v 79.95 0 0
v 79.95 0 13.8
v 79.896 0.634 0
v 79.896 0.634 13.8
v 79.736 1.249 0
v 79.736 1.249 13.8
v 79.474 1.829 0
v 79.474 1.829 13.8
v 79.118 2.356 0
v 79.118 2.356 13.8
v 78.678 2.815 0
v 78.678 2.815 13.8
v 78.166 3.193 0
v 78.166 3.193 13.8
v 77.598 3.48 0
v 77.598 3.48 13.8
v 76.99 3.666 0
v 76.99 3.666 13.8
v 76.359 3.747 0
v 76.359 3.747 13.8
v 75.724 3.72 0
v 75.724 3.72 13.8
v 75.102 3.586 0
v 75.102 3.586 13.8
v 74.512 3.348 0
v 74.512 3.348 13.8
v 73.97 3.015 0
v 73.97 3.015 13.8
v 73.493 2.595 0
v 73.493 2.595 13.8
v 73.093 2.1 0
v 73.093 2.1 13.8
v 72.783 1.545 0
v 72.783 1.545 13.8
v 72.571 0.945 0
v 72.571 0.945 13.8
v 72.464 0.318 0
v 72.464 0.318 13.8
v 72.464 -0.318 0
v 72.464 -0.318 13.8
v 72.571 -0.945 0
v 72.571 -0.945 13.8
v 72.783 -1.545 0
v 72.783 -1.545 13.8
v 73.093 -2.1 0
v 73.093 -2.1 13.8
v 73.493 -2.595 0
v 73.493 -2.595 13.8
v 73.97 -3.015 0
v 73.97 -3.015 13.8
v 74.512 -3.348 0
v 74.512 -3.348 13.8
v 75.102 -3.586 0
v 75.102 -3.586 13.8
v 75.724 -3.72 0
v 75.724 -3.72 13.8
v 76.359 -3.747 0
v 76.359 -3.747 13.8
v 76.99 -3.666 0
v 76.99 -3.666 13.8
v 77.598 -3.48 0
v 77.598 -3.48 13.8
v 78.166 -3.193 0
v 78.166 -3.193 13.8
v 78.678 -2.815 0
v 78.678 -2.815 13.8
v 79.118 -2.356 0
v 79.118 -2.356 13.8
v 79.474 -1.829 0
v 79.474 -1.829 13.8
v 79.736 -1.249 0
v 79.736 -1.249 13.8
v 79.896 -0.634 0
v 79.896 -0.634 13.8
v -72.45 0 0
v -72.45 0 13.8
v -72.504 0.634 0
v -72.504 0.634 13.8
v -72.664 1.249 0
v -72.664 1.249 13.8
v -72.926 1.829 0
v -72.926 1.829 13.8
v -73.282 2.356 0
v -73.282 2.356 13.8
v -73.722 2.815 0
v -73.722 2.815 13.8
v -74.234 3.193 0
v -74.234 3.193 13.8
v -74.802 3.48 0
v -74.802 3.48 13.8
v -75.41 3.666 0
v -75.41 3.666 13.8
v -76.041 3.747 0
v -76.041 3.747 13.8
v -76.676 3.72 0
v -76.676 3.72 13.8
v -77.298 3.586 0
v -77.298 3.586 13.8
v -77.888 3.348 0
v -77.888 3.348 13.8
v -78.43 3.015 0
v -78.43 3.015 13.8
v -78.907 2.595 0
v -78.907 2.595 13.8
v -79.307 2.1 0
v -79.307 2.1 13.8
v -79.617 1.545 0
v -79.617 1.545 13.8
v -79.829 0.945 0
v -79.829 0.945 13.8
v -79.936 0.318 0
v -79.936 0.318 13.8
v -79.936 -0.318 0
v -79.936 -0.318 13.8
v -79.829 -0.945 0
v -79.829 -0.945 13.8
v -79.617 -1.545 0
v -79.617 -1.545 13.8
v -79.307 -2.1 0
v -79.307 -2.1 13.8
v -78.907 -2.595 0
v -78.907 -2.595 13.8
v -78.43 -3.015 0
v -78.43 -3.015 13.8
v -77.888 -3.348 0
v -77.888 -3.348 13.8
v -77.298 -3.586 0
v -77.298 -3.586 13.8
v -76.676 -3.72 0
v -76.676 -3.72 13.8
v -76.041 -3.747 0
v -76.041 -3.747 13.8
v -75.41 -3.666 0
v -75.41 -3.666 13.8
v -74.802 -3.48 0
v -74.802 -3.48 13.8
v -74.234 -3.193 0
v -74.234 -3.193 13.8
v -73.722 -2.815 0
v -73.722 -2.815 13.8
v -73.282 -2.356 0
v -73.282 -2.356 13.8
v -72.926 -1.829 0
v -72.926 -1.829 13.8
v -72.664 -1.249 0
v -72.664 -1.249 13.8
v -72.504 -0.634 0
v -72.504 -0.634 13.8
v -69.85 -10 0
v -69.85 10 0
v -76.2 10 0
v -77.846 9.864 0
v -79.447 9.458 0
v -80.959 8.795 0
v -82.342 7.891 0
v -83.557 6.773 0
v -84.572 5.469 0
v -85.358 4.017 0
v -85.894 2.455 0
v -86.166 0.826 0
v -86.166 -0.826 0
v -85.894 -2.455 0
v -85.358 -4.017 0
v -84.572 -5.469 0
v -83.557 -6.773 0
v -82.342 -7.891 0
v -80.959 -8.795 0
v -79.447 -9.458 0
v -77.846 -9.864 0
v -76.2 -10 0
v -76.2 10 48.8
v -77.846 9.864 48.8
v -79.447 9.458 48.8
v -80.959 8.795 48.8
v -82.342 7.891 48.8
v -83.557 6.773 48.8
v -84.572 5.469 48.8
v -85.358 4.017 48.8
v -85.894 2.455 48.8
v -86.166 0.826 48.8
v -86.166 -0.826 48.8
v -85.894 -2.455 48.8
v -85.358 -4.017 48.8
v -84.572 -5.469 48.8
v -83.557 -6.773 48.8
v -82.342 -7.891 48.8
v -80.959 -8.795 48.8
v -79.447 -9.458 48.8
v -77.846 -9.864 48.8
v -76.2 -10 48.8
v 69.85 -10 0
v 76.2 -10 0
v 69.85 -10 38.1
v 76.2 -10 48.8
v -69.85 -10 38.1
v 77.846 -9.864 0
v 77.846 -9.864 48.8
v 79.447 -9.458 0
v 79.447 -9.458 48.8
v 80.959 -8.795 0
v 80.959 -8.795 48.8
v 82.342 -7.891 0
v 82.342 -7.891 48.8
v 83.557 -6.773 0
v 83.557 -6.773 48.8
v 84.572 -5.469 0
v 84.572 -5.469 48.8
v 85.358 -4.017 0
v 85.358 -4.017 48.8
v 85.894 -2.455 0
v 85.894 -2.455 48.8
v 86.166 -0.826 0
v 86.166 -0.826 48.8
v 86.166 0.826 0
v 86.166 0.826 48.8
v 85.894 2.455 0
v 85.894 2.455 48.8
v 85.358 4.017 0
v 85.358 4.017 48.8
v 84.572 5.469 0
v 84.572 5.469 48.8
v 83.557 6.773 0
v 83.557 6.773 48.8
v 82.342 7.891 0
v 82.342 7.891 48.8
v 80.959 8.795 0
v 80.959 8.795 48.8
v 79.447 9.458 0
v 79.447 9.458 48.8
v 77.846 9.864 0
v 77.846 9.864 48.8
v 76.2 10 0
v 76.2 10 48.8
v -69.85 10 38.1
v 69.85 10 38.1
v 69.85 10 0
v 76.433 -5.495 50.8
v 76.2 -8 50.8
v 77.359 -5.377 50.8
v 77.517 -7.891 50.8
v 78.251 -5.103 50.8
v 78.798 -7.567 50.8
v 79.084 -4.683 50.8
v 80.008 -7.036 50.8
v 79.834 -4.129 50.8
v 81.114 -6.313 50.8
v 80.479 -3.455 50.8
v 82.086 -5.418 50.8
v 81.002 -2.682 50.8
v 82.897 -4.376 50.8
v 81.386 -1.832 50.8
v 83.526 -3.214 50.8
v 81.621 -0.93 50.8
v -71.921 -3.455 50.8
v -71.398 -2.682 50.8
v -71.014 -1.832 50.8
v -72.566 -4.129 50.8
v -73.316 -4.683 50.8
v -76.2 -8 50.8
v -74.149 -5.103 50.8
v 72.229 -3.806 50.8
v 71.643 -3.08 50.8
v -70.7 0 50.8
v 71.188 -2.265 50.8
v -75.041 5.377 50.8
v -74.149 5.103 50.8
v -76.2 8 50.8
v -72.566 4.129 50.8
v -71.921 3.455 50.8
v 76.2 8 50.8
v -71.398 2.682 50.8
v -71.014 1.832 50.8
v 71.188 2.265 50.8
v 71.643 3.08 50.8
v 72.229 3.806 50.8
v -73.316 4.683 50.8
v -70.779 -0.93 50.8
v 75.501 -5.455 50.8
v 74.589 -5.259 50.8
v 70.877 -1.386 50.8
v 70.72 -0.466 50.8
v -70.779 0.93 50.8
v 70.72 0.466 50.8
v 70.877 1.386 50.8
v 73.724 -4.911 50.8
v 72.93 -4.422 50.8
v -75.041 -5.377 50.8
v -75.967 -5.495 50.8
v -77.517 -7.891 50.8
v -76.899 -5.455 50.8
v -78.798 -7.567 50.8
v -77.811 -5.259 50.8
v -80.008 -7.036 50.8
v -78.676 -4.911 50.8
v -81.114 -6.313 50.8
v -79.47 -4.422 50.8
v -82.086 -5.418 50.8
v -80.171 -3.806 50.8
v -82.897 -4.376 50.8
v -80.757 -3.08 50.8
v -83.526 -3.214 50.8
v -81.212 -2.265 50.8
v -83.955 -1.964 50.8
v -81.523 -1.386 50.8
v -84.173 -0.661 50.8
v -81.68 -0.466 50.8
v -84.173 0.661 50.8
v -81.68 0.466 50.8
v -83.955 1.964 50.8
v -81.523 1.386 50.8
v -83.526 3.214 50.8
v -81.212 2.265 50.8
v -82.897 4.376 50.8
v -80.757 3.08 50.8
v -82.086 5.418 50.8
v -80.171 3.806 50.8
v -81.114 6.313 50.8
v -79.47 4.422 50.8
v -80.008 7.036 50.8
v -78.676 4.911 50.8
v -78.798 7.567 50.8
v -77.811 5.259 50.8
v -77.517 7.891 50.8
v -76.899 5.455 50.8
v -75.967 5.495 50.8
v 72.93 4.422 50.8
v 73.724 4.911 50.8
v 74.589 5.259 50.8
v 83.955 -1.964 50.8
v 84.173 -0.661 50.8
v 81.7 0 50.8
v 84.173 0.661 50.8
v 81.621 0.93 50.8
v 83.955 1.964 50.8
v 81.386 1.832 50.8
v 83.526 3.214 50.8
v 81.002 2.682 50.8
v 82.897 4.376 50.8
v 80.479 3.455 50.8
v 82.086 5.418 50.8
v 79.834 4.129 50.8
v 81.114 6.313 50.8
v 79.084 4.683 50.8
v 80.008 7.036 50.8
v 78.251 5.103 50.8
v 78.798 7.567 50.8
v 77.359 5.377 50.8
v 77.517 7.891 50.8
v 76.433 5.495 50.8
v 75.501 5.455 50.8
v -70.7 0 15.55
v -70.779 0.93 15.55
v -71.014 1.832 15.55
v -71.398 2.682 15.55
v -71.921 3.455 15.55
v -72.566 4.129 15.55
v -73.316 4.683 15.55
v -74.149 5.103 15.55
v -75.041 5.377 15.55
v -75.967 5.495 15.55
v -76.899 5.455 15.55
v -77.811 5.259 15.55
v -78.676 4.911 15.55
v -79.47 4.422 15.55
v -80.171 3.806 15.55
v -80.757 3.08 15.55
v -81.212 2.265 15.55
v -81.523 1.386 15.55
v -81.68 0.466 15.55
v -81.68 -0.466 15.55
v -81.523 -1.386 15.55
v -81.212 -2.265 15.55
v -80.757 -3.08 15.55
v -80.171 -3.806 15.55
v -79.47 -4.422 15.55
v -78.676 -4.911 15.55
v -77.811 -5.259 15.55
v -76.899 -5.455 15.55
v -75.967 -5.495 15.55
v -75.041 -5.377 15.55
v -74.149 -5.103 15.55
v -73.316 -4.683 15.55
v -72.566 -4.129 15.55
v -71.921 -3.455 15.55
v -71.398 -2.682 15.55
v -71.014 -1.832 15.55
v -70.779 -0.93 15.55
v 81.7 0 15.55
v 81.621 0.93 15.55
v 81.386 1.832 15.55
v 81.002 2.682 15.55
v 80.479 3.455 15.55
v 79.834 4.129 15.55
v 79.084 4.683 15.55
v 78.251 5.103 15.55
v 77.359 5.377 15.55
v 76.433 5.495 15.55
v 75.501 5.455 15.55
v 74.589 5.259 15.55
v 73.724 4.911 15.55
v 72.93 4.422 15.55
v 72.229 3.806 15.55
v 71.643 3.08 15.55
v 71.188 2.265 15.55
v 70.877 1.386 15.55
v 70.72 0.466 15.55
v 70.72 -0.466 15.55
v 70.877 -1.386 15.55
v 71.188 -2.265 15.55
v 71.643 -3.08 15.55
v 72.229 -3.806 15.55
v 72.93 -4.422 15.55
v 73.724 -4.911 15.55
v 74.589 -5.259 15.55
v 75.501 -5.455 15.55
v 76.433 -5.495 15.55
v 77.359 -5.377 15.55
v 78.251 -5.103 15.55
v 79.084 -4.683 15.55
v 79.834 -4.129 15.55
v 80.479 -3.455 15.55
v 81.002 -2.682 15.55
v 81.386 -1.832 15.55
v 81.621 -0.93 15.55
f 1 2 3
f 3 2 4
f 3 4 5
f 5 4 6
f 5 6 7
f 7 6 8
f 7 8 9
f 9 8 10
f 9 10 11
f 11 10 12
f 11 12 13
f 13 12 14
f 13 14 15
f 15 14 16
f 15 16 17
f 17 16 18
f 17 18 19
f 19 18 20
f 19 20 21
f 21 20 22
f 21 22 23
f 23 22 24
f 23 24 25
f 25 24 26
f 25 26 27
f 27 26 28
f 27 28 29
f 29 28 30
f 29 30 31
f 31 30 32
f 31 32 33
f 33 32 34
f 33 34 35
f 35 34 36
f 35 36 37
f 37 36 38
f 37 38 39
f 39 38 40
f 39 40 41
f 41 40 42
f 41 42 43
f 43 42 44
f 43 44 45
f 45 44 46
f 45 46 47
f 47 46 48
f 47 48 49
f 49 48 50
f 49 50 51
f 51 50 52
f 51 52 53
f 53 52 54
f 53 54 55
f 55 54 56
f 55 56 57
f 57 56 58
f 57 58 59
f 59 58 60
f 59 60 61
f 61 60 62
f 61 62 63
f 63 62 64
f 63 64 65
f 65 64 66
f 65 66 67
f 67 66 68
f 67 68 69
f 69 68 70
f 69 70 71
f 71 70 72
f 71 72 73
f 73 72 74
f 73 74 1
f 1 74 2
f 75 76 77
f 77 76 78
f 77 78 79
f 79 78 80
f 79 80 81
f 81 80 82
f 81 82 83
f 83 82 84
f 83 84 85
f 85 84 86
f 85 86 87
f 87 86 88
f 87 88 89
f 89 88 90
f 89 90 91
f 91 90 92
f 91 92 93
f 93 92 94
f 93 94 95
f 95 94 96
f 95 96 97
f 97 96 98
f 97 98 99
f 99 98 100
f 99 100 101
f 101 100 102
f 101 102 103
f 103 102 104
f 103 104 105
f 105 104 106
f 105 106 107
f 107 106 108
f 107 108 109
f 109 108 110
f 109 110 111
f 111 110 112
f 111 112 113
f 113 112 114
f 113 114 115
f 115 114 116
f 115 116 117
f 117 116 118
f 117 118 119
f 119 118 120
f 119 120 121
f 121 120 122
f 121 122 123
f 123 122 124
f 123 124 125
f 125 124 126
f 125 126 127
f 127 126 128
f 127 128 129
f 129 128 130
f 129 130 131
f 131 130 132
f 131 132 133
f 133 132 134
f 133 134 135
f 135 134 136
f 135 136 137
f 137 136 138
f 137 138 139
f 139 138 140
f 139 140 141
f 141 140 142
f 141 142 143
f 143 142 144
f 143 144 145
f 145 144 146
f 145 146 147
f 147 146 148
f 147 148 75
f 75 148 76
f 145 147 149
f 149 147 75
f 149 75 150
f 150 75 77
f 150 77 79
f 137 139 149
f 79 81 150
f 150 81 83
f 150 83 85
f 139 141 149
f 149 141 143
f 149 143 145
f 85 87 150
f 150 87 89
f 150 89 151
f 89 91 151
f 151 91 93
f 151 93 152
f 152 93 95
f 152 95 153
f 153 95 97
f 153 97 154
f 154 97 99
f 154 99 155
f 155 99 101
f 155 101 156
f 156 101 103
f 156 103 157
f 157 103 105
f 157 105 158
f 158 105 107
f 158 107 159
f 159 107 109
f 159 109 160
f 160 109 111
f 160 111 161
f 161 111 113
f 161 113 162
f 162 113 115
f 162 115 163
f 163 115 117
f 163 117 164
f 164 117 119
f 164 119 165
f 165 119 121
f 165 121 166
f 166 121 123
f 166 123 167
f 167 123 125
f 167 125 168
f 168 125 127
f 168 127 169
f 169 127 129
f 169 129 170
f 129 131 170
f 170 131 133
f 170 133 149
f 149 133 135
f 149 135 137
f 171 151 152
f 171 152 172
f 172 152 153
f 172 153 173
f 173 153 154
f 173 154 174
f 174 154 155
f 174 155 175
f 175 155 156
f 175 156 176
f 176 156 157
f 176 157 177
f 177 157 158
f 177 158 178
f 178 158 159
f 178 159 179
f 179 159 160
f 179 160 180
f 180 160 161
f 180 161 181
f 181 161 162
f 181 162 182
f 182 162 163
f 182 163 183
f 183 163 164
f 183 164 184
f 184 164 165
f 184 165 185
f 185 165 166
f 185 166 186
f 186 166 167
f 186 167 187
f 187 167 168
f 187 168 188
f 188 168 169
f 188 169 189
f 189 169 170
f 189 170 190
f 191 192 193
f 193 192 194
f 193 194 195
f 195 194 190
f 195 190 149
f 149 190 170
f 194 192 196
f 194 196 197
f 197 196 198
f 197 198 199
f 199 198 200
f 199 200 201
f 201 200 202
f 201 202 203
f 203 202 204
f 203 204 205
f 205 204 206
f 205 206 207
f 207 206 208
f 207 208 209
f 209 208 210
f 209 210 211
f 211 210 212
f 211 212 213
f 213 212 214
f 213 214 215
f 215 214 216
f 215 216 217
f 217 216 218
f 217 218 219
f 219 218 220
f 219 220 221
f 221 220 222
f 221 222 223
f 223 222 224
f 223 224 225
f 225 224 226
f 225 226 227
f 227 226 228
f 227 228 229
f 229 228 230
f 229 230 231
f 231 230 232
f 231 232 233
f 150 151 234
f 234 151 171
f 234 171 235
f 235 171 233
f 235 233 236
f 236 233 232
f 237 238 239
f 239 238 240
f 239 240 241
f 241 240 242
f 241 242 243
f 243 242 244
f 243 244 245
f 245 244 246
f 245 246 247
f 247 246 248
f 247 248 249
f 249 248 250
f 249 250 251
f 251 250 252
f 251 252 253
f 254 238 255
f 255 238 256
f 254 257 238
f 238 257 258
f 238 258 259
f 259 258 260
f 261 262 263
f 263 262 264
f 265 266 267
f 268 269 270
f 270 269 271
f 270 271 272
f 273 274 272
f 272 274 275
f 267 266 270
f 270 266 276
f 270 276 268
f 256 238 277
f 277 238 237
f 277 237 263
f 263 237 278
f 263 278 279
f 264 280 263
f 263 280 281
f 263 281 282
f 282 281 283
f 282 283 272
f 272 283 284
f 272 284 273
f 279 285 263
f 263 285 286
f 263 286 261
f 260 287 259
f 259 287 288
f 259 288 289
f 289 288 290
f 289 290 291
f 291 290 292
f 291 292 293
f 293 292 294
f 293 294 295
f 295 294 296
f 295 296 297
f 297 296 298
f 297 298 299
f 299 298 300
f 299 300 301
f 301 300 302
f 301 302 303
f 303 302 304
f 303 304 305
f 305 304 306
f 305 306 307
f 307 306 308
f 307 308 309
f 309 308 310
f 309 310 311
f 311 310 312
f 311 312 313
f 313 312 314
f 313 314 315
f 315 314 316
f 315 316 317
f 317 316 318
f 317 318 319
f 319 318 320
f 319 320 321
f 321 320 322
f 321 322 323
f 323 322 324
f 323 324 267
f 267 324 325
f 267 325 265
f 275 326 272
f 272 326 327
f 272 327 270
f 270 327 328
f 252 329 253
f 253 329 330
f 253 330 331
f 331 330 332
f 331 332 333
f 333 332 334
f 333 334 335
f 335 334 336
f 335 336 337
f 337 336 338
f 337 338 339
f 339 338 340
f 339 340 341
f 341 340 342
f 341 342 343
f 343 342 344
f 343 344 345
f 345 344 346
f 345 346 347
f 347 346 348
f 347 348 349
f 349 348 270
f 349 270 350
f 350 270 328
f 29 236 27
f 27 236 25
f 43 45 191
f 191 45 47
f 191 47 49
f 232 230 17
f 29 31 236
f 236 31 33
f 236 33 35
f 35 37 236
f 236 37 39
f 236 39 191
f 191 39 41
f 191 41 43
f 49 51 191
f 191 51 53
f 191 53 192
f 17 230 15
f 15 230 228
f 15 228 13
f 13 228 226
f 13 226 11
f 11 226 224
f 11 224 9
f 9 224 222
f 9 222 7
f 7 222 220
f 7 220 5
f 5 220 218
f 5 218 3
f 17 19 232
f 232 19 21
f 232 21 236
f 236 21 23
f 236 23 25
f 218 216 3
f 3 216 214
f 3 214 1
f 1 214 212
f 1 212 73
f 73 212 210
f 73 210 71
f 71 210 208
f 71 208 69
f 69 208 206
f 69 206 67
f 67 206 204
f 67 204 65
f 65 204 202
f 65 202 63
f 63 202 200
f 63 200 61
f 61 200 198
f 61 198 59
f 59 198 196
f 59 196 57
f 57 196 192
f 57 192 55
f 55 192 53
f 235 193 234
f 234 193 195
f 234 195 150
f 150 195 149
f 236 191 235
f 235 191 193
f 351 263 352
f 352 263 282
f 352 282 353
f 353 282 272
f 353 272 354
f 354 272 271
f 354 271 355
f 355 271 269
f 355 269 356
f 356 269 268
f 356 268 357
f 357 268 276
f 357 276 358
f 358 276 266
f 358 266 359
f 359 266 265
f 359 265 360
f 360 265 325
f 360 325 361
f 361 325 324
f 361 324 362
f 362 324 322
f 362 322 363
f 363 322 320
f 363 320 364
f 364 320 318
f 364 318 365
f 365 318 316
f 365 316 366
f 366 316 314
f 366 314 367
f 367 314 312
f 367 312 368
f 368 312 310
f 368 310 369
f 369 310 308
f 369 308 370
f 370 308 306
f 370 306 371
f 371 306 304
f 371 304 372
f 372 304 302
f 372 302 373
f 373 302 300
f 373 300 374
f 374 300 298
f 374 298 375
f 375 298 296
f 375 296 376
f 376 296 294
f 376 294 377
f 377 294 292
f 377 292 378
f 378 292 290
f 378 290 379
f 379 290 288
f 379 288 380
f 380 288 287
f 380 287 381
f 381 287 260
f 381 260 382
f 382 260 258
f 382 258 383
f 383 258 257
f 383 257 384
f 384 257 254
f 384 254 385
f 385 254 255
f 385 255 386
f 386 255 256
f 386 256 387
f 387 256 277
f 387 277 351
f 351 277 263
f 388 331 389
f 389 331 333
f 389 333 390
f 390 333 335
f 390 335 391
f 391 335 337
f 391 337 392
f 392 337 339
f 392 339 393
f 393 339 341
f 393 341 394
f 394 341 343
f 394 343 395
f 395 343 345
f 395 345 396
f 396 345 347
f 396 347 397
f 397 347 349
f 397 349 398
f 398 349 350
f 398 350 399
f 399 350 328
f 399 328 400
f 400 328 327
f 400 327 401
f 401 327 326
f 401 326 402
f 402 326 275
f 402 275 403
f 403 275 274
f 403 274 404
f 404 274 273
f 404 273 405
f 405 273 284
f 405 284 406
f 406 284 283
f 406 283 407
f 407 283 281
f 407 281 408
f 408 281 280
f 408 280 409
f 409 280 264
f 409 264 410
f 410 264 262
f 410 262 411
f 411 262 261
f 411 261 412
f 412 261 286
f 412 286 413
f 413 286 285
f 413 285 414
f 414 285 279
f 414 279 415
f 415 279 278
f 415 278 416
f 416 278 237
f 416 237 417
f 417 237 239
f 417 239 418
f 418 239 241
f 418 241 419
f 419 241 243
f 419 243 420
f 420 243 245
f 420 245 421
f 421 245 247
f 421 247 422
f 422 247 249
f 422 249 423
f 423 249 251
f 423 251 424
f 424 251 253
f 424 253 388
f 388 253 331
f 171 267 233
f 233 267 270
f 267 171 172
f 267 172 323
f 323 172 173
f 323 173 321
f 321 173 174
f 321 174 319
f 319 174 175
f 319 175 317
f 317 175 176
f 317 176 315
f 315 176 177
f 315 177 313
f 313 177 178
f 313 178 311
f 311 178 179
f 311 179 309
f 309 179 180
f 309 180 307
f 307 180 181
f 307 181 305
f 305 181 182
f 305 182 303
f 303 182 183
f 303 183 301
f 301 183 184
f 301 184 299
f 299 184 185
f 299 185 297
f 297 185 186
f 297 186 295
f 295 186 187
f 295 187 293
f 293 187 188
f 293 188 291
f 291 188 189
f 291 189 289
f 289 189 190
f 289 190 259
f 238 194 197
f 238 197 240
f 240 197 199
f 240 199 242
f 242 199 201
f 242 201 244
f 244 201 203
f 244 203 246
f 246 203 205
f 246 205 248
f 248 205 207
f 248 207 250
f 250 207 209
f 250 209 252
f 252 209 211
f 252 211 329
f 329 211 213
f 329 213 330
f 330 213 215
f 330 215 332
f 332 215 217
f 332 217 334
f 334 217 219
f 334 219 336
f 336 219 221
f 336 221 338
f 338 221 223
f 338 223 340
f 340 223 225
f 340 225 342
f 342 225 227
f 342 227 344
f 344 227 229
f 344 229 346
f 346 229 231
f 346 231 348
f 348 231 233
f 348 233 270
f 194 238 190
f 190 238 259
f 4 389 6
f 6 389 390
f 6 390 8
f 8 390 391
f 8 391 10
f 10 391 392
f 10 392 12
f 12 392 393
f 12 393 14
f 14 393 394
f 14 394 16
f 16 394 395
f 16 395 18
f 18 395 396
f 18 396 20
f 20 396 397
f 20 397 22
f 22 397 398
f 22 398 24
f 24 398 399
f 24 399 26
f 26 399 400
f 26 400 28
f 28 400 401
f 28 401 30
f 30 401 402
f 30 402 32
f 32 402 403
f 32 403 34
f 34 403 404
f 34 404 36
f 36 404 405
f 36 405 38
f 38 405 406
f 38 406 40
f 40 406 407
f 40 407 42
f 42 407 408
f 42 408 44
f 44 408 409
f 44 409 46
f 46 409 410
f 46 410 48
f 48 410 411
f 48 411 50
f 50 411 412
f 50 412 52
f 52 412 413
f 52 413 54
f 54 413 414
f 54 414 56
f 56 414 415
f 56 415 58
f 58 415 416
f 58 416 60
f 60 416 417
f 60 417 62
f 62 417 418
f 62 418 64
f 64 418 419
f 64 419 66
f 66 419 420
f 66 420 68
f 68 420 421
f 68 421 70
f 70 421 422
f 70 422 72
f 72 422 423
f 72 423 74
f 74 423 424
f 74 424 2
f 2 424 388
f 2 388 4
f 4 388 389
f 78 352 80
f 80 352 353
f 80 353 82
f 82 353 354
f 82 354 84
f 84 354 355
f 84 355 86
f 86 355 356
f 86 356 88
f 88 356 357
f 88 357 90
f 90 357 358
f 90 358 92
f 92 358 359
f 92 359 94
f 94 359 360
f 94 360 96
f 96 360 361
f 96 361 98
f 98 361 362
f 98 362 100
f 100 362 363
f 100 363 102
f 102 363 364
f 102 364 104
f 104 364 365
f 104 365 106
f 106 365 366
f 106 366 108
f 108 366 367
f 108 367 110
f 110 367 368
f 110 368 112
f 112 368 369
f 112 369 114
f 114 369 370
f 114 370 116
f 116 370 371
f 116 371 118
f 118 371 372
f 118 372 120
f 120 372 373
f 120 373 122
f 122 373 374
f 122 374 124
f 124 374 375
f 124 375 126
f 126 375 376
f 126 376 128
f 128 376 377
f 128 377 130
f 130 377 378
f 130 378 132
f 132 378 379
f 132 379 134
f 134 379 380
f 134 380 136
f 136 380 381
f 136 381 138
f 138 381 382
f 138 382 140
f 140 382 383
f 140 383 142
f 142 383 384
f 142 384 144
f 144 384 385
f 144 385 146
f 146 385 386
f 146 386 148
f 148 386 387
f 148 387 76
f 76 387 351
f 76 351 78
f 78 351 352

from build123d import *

# Parameters (mm, degrees)
BOSS_EXTRUDE1_DEPTH = 50.8
SKETCH2_R           = 3.75
CUT_EXTRUDE1_DEPTH  = 50.8
SKETCH3_W           = 139.7
SKETCH3_H           = 38.1
CUT_EXTRUDE2_DEPTH  = 50.8
SKETCH4_R           = 5.5
CUT_EXTRUDE3_DEPTH  = 35
CHAMFER1_SIZE       = 2
CHAMFER2_SIZE       = 2


with BuildPart() as part:
    # Sketch1 → Boss-Extrude1 (new body)
    with BuildSketch(Plane.XY):
        with BuildLine():
            Line((-76.2, 10), (76.2, 10))
            ThreePointArc((76.2, 10), (86.2, 0), (76.2, -10))
            Line((76.2, -10), (-76.2, -10))
            ThreePointArc((-76.2, -10), (-86.2, 0), (-76.2, 10))
        make_face()
    extrude(amount=BOSS_EXTRUDE1_DEPTH)

    # Sketch2 → Cut-Extrude1 (cut)
    with BuildSketch(Plane.XY.offset(50.8)):
        with Locations((-76.2, 0)):
            Circle(SKETCH2_R)
        with Locations((76.2, 0)):
            Circle(SKETCH2_R)
    extrude(amount=-CUT_EXTRUDE1_DEPTH, mode=Mode.SUBTRACT)

    # Sketch3 → Cut-Extrude2 (cut)
    with BuildSketch(Plane(origin=(0, 10, 0), x_dir=(1, 0, 0), z_dir=(0, 1, 0))):
        with Locations((0, -19.05)):
            Rectangle(SKETCH3_W, SKETCH3_H)
    extrude(amount=-CUT_EXTRUDE2_DEPTH, mode=Mode.SUBTRACT)

    # Sketch4 → Cut-Extrude3 (cut)
    with BuildSketch(Plane.XY.offset(50.8)):
        with Locations((-76.2, 0)):
            Circle(SKETCH4_R)
        with Locations((76.2, 0)):
            Circle(SKETCH4_R)
    extrude(amount=-CUT_EXTRUDE3_DEPTH, mode=Mode.SUBTRACT)

    # Chamfer1
    chamfer1_edges = [part.edges().sort_by_distance(p)[0] for p in [
        (86.2, 0, 50.8),
        (0, 10, 50.8),
        (-86.2, 0, 50.8),
        (0, -10, 50.8),
    ]]
    chamfer(chamfer1_edges, length=CHAMFER1_SIZE)

    # Chamfer2
    # the kernel refuses this chamfer: 2 mm, written as the material it takes off along each edge
    with BuildSketch(Plane(origin=(76.2, 0, 15.8), x_dir=(1, 0, 0), z_dir=(0, -1, 0))) as chamfer2_piece_1_section:
        Polygon((3.75, -CHAMFER2_SIZE), (3.75 + CHAMFER2_SIZE, 0), (3.75, 0), align=None)
    chamfer2_piece_1 = revolve(axis=Axis((76.2, 0, 15.8), (0, 0, 1)), mode=Mode.PRIVATE)
    chamfer2_piece_1 = chamfer2_piece_1 & Plane(origin=(76.2, 0, 14.674245927), x_dir=(1, 0, 0), z_dir=(0, 0, 1)) * Cylinder(5.5, 23, mode=Mode.PRIVATE)
    add(chamfer2_piece_1, mode=Mode.SUBTRACT)
    with BuildSketch(Plane(origin=(-76.2, 0, 15.8), x_dir=(1, 0, 0), z_dir=(0, -1, 0))) as chamfer2_piece_2_section:
        Polygon((3.75, -CHAMFER2_SIZE), (3.75 + CHAMFER2_SIZE, 0), (3.75, 0), align=None)
    chamfer2_piece_2 = revolve(axis=Axis((-76.2, 0, 15.8), (0, 0, 1)), mode=Mode.PRIVATE)
    chamfer2_piece_2 = chamfer2_piece_2 & Plane(origin=(-76.2, 0, 14.674245927), x_dir=(1, 0, 0), z_dir=(0, 0, 1)) * Cylinder(5.5, 23, mode=Mode.PRIVATE)
    add(chamfer2_piece_2, mode=Mode.SUBTRACT)


solid = part.part
